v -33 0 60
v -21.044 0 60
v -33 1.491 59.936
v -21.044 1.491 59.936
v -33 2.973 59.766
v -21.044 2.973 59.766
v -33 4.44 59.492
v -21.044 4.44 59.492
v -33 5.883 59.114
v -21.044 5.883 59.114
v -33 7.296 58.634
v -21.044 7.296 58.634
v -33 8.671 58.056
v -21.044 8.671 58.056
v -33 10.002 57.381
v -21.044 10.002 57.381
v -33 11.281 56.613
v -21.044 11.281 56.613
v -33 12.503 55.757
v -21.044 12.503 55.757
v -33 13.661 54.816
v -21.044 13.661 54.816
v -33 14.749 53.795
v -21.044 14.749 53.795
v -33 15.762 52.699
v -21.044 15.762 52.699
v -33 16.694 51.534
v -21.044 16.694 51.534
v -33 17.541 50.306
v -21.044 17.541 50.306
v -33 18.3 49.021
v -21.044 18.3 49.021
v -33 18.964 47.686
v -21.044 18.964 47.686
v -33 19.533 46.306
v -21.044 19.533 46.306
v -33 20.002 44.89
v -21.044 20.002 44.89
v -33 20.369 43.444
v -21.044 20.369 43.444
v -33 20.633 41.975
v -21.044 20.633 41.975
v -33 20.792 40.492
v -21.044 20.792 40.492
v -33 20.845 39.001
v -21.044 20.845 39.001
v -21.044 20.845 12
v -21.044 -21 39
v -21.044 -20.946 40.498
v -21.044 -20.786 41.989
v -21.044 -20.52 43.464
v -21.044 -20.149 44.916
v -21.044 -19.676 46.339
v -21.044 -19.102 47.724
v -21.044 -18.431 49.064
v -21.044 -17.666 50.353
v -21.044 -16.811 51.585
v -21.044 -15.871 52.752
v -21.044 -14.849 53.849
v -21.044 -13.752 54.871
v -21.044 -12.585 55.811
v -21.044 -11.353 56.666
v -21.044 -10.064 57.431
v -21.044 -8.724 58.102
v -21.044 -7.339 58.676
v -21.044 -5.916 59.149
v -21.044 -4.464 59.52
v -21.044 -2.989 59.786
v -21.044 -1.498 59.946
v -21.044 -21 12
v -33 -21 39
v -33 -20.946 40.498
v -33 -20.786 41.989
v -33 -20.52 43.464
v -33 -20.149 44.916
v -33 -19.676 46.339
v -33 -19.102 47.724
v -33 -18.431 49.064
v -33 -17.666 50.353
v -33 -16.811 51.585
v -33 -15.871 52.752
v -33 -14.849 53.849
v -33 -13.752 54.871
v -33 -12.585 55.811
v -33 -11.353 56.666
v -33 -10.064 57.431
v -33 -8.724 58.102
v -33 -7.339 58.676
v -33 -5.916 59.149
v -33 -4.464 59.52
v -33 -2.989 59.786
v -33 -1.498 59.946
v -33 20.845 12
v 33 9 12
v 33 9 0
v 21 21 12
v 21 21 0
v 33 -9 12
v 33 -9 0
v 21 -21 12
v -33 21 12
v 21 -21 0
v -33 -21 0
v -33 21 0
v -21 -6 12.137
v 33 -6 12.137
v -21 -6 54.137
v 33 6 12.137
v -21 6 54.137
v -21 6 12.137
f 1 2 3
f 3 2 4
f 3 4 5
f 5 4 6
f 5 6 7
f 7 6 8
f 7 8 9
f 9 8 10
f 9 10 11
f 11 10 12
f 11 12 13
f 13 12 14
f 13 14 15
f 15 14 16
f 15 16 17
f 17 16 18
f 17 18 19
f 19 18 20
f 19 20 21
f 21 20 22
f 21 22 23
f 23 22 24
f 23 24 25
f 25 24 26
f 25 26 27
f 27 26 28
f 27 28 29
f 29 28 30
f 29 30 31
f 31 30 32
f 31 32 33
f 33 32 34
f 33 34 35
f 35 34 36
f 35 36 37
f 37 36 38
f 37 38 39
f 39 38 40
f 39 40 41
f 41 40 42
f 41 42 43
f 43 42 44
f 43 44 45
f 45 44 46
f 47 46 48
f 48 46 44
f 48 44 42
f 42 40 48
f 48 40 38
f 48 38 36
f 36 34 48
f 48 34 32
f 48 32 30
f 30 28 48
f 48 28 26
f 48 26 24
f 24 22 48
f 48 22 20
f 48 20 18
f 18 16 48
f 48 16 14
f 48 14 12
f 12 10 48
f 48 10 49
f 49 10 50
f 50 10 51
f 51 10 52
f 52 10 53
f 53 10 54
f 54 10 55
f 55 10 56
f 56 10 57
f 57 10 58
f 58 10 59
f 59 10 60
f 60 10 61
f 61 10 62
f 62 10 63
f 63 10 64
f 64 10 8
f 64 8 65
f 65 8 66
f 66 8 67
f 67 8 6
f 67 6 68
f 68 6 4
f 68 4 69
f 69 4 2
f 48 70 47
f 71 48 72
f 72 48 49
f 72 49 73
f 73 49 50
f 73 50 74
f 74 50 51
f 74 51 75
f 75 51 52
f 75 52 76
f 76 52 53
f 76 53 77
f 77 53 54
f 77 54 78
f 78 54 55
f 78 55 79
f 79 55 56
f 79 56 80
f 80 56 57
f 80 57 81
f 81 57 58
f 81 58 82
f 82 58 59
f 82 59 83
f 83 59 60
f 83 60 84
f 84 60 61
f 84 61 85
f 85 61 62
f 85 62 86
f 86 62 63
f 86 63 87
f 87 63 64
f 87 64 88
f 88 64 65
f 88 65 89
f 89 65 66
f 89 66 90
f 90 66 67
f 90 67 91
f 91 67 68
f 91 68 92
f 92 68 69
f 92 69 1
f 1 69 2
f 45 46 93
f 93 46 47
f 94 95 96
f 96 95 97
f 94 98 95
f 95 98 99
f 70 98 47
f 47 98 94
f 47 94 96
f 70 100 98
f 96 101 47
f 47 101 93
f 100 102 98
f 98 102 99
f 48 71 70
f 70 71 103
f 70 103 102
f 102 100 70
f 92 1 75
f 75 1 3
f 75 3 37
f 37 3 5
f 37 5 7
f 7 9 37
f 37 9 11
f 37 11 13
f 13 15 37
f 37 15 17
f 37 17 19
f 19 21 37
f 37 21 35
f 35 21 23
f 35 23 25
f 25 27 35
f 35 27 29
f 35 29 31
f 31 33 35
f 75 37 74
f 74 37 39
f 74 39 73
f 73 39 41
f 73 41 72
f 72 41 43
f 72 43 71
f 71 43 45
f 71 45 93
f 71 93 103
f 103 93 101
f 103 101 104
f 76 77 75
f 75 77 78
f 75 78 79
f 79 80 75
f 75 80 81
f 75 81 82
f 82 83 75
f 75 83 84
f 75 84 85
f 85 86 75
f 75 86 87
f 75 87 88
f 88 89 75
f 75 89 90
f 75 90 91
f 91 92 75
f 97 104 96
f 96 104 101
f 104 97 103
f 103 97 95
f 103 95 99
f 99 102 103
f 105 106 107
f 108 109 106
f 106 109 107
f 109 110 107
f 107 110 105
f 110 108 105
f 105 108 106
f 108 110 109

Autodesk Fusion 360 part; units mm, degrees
sketch "Sketch1" plane through (0, 0, 0) normal (0, 0, 1) x (1, 0, 0)
  line L0 (33, 21) -> (-33, 21)
  line L1 (-33, 21) -> (-33, -21)
  line L2 (-33, -21) -> (33, -21)
  line L3 (33, -21) -> (33, 21)
  line L4 (33, 21) -> (-33, -21) construction
  line L5 (-33, 21) -> (33, -21) construction
  dimension "d1" = 66
  dimension "d2" = 42
extrude "Extrude1" add sketch "Sketch1" along normal blind 12 makes body 1
chamfer "Chamfer1" distance 12 angle 45 2 edges at (33, -21, 6) (33, 21, 6) on bodies 1
sketch "Sketch2" plane through (0, 0, 12) normal (0, 0, 1) x (-1, 0, 0)
  line L0 (-33, -9) -> (-21, -21)
  line L1 (-21, -21) -> (33, -21)
  line L2 (33, -21) -> (33, 21)
  line L3 (33, 21) -> (-21, 21)
  line L4 (-21, 21) -> (-33, 9)
  line L5 (-33, 9) -> (-33, -9)
  line L6 (33.0444, -20.8446) -> (21.0444, -20.8446)
  line L7 (21.0444, -20.8446) -> (21.0444, 21)
  line L8 (21.0444, 21) -> (33.0444, 21)
  line L9 (33.0444, 21) -> (33.0444, -20.8446)
  dimension "d6" = 12
extrude "Extrude2" add sketch "Sketch2" along normal blind 48 contours L2 L3 L6 L7 L8 bodies 1
fillet "Fillet1" radius 21 2 edges at (-27.0222, -21, 60) (-27.0222, 20.8446, 60) on bodies 1
sketch "Sketch3" plane through (0, 0, 0) normal (0, 1, 0) x (1, 0, 0)
  line L0 (-21, -54.1366) -> (-21, -12.1366)
  line L1 (-21, -12.1366) -> (33, -12.1366)
  line L2 (33, -12.1366) -> (-21, -54.1366)
  dimension "d11" = 42
  dimension "d12" = 54
extrude "Extrude3" add sketch "Sketch3" along normal mid plane 12 separate body makes body 2
equation "d7 = 60 mm - 12 mm"
equation "d12 = 66 mm - 12 mm"
